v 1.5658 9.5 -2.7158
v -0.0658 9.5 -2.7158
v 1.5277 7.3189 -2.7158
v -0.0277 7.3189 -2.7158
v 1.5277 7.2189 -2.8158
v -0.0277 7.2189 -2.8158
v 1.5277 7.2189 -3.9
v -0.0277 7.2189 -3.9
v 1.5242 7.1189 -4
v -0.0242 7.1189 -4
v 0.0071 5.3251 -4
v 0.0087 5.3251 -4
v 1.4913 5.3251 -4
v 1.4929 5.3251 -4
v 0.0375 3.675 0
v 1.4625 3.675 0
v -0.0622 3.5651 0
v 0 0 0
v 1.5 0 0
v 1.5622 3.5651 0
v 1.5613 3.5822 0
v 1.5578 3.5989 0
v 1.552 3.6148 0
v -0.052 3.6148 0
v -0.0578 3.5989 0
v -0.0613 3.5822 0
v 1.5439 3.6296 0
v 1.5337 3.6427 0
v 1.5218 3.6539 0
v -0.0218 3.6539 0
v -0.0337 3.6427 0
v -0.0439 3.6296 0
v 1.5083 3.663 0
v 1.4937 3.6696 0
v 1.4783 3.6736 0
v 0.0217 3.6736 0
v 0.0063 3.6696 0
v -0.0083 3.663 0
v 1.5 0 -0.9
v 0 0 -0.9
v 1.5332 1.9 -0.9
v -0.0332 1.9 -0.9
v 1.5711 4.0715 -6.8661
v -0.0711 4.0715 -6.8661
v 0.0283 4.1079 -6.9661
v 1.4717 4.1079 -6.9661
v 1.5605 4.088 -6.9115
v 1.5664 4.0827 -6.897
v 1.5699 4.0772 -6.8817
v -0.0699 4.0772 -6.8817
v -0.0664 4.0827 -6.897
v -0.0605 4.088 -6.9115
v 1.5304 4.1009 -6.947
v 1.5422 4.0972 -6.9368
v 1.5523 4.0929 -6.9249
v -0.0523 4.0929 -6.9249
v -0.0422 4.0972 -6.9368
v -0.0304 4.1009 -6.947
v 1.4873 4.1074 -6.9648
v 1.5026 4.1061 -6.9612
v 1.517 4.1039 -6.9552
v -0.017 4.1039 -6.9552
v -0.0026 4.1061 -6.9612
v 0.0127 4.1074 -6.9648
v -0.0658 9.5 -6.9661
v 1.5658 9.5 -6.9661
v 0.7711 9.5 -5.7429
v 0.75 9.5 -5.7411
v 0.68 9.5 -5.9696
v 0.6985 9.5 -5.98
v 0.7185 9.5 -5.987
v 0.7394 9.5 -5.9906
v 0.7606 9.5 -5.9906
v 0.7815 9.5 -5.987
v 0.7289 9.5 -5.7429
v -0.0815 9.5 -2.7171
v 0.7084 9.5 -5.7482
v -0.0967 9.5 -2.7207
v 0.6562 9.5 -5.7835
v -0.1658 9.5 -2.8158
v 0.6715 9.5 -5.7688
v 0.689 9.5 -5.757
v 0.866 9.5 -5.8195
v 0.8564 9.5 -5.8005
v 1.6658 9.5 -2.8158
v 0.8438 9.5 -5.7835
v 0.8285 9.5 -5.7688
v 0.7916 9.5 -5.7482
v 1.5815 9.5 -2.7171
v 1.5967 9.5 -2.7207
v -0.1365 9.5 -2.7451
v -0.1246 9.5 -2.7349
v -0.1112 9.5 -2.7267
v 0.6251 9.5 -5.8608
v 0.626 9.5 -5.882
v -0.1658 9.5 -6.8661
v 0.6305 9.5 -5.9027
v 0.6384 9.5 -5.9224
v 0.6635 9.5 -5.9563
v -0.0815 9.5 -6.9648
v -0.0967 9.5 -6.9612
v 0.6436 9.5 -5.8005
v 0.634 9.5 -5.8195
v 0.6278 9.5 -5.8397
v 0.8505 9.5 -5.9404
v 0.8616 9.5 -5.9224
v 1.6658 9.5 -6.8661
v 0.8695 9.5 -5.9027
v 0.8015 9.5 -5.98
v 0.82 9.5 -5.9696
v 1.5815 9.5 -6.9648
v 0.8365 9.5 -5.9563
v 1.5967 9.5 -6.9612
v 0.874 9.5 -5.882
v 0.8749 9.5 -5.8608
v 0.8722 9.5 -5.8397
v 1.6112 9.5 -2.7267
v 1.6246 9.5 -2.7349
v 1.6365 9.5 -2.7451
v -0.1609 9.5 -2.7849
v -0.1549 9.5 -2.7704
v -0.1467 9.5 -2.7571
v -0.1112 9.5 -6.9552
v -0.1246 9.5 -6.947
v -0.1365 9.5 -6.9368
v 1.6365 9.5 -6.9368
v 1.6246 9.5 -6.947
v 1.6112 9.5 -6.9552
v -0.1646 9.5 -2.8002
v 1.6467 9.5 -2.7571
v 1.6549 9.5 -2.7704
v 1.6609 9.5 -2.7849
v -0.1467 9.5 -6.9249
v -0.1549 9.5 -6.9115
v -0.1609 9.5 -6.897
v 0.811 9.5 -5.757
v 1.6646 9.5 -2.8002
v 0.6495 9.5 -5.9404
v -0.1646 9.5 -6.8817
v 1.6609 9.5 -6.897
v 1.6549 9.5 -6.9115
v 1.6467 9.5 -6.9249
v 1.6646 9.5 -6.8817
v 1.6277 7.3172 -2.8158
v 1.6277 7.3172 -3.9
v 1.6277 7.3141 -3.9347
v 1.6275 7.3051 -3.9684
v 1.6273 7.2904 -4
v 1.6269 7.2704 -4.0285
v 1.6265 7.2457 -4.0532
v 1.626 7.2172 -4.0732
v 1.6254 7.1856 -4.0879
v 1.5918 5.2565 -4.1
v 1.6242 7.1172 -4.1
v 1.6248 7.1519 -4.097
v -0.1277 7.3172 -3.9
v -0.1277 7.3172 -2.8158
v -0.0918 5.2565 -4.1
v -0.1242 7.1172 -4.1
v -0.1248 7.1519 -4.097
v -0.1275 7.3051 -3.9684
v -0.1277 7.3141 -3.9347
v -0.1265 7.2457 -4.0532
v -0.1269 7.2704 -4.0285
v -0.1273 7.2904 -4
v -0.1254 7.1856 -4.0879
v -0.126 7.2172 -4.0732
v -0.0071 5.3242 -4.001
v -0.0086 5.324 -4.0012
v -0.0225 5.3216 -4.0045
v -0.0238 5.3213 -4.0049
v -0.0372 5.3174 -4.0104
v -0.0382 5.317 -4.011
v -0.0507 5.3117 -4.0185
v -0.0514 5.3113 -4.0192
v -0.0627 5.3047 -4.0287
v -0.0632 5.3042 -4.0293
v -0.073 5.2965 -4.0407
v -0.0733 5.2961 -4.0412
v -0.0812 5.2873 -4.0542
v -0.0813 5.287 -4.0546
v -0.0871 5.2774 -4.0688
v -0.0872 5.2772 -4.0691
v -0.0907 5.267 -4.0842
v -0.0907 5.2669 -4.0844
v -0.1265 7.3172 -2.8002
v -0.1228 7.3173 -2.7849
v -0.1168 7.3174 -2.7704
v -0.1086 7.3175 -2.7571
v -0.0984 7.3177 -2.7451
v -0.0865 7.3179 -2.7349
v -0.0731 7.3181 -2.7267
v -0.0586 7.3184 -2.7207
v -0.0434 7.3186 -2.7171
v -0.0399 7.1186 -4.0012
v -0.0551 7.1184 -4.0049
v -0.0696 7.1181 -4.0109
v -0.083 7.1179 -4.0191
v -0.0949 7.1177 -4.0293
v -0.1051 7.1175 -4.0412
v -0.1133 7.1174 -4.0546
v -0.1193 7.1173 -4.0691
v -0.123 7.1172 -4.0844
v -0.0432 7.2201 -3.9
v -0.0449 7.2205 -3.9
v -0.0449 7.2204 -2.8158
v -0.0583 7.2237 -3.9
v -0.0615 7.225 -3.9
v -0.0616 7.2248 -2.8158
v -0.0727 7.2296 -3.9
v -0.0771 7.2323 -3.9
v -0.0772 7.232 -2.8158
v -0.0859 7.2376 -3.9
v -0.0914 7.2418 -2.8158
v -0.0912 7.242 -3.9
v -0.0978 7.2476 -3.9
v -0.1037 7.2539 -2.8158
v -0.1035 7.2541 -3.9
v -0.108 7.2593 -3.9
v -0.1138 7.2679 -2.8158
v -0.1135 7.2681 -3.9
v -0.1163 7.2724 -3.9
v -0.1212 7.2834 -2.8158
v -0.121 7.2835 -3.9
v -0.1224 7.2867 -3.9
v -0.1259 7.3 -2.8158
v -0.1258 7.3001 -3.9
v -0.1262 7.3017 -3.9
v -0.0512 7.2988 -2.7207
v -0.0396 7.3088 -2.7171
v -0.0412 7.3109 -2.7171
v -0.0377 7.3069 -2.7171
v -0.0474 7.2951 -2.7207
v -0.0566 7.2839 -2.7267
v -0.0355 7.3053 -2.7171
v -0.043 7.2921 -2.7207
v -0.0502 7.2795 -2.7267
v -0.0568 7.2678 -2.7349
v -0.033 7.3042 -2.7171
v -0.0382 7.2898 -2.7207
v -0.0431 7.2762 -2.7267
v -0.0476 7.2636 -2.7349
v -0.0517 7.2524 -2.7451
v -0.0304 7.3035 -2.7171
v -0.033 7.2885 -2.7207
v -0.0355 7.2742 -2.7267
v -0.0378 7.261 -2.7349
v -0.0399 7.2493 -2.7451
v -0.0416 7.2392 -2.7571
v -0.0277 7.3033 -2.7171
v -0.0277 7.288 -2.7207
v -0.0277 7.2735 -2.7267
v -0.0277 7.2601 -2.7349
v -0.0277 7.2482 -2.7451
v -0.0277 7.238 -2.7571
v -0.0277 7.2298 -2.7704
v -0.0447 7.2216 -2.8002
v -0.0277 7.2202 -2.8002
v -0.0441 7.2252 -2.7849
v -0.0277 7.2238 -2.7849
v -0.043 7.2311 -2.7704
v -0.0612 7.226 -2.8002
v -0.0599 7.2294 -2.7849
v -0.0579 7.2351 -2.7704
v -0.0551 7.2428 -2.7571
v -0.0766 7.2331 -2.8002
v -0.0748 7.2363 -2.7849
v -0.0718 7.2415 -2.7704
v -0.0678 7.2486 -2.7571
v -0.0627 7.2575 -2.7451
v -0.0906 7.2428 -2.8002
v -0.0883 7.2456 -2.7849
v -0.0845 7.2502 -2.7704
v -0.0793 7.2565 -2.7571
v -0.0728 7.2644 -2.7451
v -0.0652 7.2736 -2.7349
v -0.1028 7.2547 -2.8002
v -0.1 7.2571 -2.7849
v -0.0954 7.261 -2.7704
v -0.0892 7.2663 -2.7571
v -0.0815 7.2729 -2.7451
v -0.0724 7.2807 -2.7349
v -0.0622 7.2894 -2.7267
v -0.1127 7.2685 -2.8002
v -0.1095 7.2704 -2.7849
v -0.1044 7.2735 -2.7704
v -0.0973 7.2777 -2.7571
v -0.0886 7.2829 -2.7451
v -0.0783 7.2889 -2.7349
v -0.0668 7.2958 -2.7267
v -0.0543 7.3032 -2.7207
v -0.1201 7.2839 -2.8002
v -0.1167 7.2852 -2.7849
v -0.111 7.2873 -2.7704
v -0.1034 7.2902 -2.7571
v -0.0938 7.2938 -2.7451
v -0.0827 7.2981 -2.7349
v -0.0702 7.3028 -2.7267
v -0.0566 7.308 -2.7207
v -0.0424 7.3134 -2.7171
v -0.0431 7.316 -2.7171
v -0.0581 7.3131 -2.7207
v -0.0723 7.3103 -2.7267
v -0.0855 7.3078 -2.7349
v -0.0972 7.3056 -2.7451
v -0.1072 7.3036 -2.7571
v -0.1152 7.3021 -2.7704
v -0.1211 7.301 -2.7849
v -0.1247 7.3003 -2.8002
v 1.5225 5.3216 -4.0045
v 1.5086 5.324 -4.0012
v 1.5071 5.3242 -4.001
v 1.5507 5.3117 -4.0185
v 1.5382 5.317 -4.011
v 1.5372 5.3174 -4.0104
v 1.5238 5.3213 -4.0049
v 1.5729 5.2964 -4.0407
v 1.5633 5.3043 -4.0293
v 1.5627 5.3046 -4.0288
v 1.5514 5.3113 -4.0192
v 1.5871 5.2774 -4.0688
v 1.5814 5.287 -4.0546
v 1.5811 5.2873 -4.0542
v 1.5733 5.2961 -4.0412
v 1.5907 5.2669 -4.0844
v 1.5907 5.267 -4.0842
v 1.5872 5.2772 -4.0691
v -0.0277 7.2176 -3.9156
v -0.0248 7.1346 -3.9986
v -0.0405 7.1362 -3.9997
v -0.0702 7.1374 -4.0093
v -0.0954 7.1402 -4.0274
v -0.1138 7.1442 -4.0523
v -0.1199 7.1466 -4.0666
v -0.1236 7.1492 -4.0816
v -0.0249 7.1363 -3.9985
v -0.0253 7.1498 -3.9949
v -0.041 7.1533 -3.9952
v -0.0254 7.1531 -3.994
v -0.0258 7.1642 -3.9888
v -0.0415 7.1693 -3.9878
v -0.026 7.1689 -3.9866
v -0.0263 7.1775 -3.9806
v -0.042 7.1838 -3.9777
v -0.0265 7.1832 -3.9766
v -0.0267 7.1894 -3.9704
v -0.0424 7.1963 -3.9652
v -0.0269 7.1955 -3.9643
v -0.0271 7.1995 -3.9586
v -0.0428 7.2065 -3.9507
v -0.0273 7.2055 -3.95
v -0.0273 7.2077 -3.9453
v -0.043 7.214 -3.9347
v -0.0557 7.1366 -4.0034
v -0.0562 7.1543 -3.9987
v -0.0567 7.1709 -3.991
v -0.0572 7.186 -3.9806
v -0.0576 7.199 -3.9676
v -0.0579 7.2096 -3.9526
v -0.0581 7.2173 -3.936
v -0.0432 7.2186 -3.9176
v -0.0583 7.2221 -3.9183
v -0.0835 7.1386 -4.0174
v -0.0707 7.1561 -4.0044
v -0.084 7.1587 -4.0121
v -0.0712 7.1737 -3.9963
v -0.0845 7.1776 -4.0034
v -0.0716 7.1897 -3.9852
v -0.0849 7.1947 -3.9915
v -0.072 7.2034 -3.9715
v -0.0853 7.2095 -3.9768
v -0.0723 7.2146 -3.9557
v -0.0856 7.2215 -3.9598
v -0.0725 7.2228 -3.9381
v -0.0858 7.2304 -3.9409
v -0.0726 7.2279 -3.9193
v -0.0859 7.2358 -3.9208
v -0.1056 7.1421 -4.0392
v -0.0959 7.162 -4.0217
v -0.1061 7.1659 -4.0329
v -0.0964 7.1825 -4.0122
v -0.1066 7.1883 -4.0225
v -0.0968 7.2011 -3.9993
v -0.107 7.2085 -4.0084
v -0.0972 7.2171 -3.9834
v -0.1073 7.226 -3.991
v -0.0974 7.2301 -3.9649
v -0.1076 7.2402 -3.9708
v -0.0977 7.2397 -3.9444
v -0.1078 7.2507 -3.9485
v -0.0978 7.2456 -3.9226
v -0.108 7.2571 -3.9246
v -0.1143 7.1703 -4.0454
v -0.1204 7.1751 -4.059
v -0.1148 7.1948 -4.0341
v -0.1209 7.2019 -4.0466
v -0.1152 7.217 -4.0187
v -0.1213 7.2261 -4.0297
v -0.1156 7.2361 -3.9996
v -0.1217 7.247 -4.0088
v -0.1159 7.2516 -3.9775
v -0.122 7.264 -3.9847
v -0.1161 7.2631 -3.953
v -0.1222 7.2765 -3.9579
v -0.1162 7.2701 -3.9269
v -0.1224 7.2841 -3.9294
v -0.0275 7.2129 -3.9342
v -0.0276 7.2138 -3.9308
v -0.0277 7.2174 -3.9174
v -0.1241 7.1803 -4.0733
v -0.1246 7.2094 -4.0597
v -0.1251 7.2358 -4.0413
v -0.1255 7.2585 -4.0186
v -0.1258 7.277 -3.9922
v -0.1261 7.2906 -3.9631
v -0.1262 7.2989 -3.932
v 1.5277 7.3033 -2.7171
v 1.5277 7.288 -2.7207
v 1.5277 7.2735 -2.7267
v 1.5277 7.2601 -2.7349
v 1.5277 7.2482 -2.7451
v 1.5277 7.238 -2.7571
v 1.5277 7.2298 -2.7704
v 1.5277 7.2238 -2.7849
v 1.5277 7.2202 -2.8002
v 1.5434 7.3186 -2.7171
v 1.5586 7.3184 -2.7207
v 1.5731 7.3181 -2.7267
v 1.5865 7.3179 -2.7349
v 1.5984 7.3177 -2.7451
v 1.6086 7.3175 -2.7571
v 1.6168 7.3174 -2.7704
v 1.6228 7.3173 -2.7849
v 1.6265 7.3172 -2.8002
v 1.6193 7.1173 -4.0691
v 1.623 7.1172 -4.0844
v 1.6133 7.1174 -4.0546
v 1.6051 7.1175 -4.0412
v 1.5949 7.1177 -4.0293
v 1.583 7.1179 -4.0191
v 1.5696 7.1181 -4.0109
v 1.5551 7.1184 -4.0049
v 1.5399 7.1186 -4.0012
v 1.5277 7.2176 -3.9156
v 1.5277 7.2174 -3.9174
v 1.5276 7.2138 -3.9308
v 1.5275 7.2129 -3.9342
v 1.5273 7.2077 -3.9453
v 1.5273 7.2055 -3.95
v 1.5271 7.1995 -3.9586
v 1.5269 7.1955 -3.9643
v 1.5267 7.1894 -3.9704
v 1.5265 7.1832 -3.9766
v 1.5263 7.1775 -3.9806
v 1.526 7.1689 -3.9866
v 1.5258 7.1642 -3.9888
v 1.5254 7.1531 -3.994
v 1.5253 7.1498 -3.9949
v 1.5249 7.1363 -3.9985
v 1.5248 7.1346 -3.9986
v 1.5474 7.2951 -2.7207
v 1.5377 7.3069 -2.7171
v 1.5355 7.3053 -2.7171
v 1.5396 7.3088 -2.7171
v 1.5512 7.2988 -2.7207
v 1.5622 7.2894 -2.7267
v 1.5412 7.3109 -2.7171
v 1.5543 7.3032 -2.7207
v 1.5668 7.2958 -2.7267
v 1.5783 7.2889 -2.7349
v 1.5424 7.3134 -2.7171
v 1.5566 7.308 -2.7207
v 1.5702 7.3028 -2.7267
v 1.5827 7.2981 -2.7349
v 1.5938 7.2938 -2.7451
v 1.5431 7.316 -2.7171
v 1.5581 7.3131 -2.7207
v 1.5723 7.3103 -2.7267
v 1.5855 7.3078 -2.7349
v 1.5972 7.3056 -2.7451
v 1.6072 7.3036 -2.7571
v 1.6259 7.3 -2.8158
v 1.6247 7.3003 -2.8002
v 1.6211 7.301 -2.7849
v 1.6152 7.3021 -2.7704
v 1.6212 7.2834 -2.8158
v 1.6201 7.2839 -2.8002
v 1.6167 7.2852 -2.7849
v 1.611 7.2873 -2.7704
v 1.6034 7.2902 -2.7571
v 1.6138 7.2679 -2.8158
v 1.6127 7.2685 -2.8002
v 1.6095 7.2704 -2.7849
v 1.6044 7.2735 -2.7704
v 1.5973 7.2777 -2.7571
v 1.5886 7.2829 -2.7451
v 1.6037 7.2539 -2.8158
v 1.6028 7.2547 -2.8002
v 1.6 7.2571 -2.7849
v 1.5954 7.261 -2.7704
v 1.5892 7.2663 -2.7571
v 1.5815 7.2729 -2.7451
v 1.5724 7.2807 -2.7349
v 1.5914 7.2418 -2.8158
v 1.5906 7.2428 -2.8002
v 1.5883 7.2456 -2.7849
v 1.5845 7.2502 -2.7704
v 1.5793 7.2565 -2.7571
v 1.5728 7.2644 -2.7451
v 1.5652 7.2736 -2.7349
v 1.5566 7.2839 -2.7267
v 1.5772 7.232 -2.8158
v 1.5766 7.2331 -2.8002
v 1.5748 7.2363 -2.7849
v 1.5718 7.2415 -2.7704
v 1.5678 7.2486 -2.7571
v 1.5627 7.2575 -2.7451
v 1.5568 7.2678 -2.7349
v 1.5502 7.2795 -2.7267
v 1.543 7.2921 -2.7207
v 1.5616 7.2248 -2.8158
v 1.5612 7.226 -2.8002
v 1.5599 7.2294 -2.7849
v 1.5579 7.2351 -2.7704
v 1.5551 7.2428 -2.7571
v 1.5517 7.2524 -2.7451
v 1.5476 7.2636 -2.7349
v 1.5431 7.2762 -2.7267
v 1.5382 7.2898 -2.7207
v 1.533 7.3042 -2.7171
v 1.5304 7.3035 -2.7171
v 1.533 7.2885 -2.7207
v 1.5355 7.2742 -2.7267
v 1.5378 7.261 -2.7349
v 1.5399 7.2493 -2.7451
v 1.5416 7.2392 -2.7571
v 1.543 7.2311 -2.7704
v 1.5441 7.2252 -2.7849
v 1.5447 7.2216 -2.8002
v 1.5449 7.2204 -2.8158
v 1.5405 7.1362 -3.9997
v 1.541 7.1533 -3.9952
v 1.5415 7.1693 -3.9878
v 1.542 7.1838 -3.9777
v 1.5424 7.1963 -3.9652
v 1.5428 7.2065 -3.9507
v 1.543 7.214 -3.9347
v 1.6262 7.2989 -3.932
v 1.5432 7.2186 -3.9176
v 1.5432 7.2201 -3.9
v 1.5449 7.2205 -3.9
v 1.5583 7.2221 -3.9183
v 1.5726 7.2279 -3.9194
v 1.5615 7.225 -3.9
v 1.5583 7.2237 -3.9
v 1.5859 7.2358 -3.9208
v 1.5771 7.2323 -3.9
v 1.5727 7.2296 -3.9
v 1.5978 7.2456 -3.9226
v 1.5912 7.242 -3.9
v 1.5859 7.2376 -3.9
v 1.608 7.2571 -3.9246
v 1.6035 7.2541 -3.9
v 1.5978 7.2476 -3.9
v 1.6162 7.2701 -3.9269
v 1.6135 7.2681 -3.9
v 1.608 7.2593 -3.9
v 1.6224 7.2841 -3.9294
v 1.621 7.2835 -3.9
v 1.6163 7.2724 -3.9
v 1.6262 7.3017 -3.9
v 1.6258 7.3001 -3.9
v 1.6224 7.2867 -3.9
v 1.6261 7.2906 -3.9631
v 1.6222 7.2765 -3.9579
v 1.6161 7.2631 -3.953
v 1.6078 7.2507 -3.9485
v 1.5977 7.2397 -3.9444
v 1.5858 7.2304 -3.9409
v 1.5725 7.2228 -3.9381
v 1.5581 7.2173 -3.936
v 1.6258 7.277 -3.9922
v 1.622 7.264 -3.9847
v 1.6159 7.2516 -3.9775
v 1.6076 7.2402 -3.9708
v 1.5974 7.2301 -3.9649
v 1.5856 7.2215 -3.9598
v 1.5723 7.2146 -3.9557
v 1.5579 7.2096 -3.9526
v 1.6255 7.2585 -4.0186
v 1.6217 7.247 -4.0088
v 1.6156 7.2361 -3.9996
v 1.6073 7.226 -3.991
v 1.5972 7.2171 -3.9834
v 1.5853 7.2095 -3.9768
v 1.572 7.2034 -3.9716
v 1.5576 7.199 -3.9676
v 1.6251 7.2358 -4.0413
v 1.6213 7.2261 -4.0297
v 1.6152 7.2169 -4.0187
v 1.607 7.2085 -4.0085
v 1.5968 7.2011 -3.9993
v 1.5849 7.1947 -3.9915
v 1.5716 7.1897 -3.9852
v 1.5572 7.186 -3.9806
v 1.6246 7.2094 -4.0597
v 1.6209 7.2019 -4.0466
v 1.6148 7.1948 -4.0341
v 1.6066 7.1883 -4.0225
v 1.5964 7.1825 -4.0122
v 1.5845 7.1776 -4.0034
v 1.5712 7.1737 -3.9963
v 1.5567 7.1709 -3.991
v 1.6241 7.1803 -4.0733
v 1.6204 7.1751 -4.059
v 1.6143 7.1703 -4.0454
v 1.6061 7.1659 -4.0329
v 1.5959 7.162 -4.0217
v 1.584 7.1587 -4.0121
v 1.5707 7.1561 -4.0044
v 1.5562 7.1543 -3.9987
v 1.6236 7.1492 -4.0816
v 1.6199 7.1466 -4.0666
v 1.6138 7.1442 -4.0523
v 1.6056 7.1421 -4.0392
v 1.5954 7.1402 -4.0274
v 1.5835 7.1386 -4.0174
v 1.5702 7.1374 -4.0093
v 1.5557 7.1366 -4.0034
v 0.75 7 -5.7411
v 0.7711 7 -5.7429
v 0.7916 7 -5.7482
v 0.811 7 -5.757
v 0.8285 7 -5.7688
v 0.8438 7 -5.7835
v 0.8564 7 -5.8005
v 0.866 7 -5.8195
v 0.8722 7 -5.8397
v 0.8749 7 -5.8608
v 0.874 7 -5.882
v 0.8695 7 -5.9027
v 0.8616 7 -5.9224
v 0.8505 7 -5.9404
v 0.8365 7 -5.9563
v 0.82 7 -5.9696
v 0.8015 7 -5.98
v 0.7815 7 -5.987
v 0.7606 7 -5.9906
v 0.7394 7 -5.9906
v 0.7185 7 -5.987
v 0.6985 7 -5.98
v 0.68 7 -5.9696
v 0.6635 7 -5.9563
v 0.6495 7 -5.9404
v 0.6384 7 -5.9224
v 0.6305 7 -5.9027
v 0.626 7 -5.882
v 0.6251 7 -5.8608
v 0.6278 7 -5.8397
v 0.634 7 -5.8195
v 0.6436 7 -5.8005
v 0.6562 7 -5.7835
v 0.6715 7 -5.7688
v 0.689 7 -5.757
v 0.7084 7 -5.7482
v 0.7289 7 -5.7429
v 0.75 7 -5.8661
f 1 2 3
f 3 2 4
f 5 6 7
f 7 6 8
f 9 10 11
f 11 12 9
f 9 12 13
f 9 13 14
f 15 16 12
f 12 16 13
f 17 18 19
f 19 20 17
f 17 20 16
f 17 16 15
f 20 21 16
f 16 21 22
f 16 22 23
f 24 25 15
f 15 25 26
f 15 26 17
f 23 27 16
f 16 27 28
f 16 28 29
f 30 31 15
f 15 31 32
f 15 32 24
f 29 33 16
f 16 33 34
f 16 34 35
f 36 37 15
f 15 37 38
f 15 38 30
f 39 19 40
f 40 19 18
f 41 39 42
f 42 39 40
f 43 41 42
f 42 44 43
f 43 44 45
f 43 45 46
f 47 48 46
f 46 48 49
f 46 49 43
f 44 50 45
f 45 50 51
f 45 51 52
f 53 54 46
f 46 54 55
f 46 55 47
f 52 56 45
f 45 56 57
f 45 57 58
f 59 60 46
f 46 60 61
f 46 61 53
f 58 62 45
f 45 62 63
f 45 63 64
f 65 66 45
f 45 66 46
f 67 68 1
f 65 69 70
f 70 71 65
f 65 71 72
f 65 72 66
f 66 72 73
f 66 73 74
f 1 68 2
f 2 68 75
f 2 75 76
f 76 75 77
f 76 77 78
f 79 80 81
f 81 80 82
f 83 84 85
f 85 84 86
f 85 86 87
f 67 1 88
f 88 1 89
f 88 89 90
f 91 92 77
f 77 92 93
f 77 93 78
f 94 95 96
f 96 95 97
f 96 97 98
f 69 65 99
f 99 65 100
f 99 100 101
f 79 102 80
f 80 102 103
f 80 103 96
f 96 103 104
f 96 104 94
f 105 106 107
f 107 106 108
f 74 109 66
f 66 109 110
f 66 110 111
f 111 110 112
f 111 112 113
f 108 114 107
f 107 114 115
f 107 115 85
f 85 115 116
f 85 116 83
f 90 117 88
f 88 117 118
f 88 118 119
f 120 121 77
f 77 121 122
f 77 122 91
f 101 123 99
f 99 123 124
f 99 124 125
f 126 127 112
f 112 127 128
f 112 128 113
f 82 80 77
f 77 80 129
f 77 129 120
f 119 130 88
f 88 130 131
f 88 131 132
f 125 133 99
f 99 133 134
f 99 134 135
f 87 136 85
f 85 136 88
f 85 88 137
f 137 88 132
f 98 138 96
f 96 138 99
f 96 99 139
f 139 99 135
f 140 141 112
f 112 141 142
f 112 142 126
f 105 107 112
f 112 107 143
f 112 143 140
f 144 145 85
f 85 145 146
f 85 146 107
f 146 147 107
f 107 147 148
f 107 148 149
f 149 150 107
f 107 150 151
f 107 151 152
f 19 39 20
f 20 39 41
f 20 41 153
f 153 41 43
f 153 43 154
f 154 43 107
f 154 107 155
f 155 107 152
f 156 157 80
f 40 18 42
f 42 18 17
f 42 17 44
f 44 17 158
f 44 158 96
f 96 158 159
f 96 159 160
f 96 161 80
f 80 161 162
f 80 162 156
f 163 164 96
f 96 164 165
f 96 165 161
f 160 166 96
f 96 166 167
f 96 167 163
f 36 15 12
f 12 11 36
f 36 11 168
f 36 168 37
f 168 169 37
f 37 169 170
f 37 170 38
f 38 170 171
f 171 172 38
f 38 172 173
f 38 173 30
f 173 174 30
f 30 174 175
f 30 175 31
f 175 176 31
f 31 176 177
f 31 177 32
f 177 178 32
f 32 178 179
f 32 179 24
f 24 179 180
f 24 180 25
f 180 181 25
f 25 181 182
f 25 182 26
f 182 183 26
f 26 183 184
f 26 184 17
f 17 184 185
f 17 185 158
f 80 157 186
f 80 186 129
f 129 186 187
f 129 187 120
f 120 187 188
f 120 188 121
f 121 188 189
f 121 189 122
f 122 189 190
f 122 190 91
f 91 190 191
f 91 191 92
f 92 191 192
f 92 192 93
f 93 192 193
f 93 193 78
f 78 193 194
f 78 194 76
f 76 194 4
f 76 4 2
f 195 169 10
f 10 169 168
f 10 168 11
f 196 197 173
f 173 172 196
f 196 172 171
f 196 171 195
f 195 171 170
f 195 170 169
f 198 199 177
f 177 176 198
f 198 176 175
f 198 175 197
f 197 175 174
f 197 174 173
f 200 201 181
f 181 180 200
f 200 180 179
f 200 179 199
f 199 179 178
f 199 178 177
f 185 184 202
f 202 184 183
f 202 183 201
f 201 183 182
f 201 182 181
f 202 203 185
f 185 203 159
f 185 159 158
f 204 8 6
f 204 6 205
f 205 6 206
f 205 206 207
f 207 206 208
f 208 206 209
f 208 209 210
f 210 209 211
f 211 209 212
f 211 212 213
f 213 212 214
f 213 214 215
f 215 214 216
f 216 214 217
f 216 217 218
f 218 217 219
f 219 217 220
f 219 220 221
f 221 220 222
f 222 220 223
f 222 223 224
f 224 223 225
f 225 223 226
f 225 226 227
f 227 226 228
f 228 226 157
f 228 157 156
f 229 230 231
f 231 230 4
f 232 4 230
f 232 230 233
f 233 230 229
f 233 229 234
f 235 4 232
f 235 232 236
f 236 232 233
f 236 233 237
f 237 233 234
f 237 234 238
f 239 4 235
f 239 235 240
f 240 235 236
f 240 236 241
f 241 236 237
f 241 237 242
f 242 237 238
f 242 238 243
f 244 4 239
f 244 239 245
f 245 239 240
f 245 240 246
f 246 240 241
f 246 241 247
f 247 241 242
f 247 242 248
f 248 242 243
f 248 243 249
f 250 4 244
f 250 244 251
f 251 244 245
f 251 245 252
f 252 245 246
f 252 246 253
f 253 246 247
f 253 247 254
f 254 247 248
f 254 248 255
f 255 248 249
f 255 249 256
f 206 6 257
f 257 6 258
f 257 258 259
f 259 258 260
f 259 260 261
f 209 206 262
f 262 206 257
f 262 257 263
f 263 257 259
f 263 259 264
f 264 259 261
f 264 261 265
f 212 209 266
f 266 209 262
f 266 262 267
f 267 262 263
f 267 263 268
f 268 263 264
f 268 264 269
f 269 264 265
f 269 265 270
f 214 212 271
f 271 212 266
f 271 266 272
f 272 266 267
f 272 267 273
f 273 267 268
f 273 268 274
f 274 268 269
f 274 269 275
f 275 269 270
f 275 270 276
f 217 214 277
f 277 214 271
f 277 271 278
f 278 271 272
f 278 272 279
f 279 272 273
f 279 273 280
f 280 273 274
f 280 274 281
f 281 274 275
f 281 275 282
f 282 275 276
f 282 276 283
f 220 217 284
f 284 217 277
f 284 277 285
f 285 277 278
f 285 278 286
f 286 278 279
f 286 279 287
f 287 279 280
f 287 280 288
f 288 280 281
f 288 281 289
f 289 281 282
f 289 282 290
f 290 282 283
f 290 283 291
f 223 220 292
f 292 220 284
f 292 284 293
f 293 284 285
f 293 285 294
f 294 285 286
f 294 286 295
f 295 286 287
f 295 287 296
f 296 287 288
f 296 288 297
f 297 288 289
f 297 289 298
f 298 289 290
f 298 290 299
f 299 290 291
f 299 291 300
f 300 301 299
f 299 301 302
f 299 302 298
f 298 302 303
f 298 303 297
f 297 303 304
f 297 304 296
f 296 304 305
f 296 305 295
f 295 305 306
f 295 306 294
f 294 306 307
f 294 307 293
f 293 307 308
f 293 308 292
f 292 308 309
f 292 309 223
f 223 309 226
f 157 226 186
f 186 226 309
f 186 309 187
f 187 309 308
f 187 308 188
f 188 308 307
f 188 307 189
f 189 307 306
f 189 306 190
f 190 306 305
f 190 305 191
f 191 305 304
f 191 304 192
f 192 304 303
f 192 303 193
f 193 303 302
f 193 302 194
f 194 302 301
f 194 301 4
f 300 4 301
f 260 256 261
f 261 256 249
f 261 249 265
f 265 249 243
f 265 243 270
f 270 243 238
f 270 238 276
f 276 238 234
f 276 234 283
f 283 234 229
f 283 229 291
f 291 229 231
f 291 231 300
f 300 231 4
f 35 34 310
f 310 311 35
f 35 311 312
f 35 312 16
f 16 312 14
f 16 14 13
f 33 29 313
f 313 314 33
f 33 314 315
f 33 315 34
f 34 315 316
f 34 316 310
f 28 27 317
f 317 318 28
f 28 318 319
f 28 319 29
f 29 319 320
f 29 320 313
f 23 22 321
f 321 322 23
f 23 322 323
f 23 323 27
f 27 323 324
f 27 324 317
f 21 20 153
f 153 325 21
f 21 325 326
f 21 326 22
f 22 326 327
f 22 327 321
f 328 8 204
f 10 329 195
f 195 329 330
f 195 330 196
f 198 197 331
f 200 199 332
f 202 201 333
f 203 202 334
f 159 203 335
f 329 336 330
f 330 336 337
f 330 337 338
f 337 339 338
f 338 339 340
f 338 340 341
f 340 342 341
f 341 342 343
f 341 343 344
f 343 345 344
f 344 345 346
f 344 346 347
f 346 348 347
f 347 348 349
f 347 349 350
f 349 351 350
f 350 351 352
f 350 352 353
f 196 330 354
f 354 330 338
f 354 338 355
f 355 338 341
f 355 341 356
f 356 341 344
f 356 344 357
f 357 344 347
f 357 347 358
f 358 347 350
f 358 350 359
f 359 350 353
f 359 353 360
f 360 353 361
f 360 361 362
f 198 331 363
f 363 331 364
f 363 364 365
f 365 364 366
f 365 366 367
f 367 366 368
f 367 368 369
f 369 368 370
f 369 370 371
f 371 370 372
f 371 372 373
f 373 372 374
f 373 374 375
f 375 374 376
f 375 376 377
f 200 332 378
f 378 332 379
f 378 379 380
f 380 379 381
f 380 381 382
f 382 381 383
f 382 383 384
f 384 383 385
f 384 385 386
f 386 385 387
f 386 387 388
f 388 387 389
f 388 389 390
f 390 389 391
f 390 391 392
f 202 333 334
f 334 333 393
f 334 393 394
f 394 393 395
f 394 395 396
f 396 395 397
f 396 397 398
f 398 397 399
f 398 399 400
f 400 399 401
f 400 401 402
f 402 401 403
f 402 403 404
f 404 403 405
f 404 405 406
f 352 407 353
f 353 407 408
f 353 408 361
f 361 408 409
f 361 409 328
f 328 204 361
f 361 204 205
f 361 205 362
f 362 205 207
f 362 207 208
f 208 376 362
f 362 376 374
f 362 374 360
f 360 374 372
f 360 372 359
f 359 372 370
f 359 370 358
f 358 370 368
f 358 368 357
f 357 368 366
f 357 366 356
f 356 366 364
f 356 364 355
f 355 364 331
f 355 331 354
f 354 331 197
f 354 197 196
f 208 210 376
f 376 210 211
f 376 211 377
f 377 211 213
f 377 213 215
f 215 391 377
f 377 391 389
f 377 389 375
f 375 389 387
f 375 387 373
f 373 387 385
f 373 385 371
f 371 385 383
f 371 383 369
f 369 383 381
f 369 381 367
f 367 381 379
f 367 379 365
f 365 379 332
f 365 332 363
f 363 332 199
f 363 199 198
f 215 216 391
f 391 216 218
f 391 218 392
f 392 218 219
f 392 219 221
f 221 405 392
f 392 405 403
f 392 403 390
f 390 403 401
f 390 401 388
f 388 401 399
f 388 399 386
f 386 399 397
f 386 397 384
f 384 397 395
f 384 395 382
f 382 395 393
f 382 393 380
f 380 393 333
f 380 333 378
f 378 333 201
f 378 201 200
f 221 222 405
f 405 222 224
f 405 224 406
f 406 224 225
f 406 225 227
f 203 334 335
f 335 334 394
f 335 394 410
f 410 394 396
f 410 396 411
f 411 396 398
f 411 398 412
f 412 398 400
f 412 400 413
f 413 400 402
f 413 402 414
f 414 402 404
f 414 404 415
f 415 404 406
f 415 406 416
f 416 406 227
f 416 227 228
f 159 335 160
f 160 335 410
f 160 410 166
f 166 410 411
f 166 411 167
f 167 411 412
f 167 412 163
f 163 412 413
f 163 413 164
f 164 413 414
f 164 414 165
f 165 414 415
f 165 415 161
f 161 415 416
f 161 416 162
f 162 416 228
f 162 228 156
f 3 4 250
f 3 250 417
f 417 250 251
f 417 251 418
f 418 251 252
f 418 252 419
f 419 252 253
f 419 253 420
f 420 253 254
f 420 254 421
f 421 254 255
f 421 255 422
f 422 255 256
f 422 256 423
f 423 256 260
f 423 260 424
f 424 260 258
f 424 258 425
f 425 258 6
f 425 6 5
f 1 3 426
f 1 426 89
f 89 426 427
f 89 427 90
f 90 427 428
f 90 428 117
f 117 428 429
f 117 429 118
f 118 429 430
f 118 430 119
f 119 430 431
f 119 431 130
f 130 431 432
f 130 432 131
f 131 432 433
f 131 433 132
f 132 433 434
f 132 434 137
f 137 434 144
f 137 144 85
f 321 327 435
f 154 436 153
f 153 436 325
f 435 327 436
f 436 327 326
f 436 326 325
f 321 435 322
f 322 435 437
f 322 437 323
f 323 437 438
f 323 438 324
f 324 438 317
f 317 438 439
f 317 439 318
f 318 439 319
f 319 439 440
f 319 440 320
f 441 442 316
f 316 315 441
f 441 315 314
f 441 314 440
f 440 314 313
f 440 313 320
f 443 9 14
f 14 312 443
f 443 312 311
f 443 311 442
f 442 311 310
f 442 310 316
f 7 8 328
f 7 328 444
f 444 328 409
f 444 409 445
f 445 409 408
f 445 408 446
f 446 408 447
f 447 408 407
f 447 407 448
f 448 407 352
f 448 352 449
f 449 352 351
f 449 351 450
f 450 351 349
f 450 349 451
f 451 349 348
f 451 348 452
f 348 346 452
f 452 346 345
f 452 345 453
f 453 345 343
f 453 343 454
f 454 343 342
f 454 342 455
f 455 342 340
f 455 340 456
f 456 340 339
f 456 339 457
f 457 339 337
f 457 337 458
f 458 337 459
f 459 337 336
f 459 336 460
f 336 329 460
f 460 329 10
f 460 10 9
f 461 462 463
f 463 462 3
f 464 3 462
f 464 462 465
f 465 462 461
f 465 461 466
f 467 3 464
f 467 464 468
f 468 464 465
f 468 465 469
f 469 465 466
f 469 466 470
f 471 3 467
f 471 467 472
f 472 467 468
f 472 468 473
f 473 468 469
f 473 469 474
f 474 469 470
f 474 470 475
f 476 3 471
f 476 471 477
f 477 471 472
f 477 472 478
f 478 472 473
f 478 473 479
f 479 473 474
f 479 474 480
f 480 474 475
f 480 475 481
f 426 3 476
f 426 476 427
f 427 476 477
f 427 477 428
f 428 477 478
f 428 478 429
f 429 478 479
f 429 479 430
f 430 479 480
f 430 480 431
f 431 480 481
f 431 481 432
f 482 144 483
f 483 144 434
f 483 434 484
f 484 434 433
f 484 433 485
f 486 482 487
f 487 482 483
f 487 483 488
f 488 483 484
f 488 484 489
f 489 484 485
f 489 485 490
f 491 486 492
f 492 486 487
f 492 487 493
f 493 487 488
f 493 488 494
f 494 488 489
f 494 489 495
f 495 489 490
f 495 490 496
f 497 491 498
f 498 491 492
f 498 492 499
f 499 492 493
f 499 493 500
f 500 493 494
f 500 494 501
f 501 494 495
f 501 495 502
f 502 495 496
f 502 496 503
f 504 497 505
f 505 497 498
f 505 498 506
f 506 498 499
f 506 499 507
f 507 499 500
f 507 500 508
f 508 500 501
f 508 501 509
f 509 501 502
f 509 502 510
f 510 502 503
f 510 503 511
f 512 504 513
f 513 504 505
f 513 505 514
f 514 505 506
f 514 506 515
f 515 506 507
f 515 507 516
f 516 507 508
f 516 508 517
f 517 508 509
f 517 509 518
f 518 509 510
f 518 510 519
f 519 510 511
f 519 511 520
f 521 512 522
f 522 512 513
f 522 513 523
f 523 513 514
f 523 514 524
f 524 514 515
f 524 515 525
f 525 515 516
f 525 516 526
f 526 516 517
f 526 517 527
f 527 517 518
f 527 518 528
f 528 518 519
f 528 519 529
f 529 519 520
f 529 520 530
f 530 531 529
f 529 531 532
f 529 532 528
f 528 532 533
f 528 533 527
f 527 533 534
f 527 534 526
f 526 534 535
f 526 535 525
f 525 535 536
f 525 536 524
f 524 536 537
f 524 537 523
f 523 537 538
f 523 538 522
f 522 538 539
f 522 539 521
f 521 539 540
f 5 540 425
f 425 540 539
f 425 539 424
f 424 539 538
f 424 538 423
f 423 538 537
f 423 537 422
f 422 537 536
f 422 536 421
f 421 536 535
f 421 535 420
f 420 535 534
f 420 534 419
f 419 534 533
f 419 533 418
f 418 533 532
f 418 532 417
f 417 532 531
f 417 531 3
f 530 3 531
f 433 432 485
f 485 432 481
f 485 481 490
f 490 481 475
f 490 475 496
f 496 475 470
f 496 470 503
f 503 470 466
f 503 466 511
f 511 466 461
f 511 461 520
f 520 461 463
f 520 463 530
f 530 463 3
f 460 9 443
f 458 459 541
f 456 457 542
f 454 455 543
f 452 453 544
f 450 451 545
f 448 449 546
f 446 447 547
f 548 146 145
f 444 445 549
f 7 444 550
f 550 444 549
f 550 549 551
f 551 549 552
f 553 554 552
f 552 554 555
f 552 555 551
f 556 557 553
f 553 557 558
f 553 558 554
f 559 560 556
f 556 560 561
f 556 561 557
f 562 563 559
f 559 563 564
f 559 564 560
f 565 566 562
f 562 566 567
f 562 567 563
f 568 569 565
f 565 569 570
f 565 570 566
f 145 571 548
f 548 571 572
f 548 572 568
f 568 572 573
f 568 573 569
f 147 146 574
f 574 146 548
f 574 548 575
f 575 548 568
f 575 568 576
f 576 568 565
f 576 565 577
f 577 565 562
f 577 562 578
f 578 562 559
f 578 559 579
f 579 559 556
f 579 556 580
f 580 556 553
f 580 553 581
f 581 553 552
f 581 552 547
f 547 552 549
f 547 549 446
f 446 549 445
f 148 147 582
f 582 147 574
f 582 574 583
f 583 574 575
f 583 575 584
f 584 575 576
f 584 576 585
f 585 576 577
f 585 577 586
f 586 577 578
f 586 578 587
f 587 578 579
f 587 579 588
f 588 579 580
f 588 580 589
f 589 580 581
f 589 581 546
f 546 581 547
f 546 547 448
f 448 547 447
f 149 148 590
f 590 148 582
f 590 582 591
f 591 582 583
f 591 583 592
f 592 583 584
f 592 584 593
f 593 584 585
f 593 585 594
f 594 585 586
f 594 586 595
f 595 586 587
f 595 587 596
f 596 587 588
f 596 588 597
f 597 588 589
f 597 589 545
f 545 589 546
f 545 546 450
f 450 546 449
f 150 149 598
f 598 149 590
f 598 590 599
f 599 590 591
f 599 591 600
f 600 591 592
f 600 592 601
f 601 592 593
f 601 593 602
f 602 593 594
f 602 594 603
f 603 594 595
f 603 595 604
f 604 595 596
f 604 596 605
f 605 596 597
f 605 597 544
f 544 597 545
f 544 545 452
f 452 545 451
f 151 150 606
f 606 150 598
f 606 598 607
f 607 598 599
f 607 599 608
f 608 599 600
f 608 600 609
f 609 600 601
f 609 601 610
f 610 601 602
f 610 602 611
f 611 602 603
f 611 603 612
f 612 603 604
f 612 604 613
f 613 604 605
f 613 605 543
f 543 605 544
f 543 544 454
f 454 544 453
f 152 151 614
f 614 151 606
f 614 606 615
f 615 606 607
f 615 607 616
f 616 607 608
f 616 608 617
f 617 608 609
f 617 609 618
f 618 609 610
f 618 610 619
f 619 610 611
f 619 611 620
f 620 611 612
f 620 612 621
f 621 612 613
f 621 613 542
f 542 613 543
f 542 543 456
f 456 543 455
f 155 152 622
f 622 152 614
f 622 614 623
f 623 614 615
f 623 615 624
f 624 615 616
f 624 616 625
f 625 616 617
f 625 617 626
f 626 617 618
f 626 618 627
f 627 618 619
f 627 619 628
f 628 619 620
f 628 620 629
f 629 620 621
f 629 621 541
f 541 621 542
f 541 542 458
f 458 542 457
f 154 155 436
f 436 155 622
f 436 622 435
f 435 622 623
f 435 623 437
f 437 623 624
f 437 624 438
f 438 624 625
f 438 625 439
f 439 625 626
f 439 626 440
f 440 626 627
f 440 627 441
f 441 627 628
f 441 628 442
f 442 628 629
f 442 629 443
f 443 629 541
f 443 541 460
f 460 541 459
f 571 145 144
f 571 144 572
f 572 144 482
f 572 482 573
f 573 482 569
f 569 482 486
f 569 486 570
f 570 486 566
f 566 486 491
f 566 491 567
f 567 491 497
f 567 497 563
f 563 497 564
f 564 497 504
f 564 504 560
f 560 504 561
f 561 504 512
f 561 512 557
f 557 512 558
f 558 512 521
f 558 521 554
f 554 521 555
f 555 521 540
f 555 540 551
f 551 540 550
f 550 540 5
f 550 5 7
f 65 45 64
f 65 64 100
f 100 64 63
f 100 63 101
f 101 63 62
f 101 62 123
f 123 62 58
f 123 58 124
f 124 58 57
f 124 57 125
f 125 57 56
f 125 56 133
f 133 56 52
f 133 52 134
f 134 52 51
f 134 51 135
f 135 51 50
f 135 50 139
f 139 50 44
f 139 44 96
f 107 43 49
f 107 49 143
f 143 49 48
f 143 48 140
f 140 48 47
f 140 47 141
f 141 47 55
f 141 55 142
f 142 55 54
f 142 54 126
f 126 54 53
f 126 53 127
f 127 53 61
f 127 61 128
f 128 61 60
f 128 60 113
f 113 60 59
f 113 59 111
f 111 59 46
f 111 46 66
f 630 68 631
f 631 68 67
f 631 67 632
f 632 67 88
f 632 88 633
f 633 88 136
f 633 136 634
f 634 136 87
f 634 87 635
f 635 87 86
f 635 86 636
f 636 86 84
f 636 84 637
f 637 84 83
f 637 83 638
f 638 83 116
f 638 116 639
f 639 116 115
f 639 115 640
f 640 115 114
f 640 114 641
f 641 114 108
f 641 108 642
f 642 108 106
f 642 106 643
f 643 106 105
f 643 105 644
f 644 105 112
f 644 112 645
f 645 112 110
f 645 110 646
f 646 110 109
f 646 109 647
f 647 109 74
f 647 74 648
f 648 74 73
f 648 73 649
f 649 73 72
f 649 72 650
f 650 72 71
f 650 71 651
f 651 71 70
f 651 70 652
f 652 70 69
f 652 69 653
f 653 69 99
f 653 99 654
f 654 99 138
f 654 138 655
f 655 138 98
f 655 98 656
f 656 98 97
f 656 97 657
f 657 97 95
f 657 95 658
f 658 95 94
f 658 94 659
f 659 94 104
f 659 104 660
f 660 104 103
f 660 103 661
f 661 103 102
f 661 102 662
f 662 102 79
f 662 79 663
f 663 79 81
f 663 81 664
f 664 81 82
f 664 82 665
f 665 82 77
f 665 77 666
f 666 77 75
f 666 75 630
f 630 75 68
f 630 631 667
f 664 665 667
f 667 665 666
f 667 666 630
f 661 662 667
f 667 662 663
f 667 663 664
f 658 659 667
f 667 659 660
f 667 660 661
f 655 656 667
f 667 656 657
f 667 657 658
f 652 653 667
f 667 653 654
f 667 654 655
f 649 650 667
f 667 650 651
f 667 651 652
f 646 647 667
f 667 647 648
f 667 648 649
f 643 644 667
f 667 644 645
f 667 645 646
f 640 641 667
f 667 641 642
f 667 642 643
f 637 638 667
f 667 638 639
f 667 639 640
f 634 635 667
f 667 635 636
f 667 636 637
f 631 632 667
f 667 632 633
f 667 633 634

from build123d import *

# Parameters (mm, degrees)
BOSS_EXTRUDE1_DEPTH = 1.5
DRAFT4_ANGLE        = -1
FILLET1_R           = 0.1
SKETCH5_R           = 0.125
CUT_EXTRUDE1_DEPTH  = 2.5


with BuildPart() as part:
    # Sketch1 → Boss-Extrude1 (new body)
    with BuildSketch(Plane(origin=(0, 0, 0), x_dir=(0, 0, -1), z_dir=(1, 0, 0))):
        Polygon((0.9, 1.9), (0.9, 0), (0, 0), (0, 3.674994058), (4, 5.325119328), (4, 7.218922126), (2.71583546, 7.218922126), (2.71583546, 9.5), (6.966077176, 9.5), (6.966077176, 4.107871531), align=None)
    extrude(amount=BOSS_EXTRUDE1_DEPTH)

    # Draft4
    draft4_faces = [part.faces().sort_by_distance(p)[0] for p in [
        (0, 5.526450361, -4.018047871),
        (1.5, 5.526450361, -4.018047871),
    ]]
    draft(draft4_faces, Plane.ZX, DRAFT4_ANGLE)

    # Fillet1
    fillet1_edges = [part.edges().sort_by_distance(p)[0] for p in [
        (1.609478529, 6.272020727, -4),
        (-0.078548782, 4.500056693, -2),
        (-0.109478529, 6.272020727, -4),
        (-0.126006754, 7.218922126, -3.35791773),
        (-0.145914936, 8.359461063, -2.71583546),
        (1.578548782, 4.500056693, -2),
        (0.75, 7.218922126, -4),
        (0.75, 7.218922126, -2.71583546),
        (1.618763141, 6.803935765, -6.966077176),
        (1.645914936, 8.359461063, -2.71583546),
        (1.626006754, 7.218922126, -3.35791773),
        (-0.118763141, 6.803935765, -6.966077176),
    ]]
    fillet(fillet1_edges, radius=FILLET1_R)

    # Sketch5 → Cut-Extrude1 (cut)
    with BuildSketch(Plane(origin=(0, 9.5, 0), x_dir=(1, 0, 0), z_dir=(0, 1, 0))):
        with Locations((0.75, 5.866077176)):
            Circle(SKETCH5_R)
    extrude(amount=-CUT_EXTRUDE1_DEPTH, mode=Mode.SUBTRACT)


solid = part.part
